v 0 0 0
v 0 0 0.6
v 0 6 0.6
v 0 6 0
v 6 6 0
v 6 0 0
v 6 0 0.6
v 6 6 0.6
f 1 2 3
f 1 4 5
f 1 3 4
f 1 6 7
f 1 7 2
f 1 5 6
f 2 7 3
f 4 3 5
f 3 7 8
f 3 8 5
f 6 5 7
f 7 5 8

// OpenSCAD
/* Warning, this is a very basic generator with a lot of approximation 
input data : [UFBGA, BVB, 6x6x0.6mm, 88, , A, C04-21158A]
generated by com.zoubworld.electronics.cad.model3d.Basic
Date : Sun Feb 15 10:50:49 CET 2026
*/

//body
color("black")
translate([0,0,0])
cube([6.0,6.0,0.6], center=false);
